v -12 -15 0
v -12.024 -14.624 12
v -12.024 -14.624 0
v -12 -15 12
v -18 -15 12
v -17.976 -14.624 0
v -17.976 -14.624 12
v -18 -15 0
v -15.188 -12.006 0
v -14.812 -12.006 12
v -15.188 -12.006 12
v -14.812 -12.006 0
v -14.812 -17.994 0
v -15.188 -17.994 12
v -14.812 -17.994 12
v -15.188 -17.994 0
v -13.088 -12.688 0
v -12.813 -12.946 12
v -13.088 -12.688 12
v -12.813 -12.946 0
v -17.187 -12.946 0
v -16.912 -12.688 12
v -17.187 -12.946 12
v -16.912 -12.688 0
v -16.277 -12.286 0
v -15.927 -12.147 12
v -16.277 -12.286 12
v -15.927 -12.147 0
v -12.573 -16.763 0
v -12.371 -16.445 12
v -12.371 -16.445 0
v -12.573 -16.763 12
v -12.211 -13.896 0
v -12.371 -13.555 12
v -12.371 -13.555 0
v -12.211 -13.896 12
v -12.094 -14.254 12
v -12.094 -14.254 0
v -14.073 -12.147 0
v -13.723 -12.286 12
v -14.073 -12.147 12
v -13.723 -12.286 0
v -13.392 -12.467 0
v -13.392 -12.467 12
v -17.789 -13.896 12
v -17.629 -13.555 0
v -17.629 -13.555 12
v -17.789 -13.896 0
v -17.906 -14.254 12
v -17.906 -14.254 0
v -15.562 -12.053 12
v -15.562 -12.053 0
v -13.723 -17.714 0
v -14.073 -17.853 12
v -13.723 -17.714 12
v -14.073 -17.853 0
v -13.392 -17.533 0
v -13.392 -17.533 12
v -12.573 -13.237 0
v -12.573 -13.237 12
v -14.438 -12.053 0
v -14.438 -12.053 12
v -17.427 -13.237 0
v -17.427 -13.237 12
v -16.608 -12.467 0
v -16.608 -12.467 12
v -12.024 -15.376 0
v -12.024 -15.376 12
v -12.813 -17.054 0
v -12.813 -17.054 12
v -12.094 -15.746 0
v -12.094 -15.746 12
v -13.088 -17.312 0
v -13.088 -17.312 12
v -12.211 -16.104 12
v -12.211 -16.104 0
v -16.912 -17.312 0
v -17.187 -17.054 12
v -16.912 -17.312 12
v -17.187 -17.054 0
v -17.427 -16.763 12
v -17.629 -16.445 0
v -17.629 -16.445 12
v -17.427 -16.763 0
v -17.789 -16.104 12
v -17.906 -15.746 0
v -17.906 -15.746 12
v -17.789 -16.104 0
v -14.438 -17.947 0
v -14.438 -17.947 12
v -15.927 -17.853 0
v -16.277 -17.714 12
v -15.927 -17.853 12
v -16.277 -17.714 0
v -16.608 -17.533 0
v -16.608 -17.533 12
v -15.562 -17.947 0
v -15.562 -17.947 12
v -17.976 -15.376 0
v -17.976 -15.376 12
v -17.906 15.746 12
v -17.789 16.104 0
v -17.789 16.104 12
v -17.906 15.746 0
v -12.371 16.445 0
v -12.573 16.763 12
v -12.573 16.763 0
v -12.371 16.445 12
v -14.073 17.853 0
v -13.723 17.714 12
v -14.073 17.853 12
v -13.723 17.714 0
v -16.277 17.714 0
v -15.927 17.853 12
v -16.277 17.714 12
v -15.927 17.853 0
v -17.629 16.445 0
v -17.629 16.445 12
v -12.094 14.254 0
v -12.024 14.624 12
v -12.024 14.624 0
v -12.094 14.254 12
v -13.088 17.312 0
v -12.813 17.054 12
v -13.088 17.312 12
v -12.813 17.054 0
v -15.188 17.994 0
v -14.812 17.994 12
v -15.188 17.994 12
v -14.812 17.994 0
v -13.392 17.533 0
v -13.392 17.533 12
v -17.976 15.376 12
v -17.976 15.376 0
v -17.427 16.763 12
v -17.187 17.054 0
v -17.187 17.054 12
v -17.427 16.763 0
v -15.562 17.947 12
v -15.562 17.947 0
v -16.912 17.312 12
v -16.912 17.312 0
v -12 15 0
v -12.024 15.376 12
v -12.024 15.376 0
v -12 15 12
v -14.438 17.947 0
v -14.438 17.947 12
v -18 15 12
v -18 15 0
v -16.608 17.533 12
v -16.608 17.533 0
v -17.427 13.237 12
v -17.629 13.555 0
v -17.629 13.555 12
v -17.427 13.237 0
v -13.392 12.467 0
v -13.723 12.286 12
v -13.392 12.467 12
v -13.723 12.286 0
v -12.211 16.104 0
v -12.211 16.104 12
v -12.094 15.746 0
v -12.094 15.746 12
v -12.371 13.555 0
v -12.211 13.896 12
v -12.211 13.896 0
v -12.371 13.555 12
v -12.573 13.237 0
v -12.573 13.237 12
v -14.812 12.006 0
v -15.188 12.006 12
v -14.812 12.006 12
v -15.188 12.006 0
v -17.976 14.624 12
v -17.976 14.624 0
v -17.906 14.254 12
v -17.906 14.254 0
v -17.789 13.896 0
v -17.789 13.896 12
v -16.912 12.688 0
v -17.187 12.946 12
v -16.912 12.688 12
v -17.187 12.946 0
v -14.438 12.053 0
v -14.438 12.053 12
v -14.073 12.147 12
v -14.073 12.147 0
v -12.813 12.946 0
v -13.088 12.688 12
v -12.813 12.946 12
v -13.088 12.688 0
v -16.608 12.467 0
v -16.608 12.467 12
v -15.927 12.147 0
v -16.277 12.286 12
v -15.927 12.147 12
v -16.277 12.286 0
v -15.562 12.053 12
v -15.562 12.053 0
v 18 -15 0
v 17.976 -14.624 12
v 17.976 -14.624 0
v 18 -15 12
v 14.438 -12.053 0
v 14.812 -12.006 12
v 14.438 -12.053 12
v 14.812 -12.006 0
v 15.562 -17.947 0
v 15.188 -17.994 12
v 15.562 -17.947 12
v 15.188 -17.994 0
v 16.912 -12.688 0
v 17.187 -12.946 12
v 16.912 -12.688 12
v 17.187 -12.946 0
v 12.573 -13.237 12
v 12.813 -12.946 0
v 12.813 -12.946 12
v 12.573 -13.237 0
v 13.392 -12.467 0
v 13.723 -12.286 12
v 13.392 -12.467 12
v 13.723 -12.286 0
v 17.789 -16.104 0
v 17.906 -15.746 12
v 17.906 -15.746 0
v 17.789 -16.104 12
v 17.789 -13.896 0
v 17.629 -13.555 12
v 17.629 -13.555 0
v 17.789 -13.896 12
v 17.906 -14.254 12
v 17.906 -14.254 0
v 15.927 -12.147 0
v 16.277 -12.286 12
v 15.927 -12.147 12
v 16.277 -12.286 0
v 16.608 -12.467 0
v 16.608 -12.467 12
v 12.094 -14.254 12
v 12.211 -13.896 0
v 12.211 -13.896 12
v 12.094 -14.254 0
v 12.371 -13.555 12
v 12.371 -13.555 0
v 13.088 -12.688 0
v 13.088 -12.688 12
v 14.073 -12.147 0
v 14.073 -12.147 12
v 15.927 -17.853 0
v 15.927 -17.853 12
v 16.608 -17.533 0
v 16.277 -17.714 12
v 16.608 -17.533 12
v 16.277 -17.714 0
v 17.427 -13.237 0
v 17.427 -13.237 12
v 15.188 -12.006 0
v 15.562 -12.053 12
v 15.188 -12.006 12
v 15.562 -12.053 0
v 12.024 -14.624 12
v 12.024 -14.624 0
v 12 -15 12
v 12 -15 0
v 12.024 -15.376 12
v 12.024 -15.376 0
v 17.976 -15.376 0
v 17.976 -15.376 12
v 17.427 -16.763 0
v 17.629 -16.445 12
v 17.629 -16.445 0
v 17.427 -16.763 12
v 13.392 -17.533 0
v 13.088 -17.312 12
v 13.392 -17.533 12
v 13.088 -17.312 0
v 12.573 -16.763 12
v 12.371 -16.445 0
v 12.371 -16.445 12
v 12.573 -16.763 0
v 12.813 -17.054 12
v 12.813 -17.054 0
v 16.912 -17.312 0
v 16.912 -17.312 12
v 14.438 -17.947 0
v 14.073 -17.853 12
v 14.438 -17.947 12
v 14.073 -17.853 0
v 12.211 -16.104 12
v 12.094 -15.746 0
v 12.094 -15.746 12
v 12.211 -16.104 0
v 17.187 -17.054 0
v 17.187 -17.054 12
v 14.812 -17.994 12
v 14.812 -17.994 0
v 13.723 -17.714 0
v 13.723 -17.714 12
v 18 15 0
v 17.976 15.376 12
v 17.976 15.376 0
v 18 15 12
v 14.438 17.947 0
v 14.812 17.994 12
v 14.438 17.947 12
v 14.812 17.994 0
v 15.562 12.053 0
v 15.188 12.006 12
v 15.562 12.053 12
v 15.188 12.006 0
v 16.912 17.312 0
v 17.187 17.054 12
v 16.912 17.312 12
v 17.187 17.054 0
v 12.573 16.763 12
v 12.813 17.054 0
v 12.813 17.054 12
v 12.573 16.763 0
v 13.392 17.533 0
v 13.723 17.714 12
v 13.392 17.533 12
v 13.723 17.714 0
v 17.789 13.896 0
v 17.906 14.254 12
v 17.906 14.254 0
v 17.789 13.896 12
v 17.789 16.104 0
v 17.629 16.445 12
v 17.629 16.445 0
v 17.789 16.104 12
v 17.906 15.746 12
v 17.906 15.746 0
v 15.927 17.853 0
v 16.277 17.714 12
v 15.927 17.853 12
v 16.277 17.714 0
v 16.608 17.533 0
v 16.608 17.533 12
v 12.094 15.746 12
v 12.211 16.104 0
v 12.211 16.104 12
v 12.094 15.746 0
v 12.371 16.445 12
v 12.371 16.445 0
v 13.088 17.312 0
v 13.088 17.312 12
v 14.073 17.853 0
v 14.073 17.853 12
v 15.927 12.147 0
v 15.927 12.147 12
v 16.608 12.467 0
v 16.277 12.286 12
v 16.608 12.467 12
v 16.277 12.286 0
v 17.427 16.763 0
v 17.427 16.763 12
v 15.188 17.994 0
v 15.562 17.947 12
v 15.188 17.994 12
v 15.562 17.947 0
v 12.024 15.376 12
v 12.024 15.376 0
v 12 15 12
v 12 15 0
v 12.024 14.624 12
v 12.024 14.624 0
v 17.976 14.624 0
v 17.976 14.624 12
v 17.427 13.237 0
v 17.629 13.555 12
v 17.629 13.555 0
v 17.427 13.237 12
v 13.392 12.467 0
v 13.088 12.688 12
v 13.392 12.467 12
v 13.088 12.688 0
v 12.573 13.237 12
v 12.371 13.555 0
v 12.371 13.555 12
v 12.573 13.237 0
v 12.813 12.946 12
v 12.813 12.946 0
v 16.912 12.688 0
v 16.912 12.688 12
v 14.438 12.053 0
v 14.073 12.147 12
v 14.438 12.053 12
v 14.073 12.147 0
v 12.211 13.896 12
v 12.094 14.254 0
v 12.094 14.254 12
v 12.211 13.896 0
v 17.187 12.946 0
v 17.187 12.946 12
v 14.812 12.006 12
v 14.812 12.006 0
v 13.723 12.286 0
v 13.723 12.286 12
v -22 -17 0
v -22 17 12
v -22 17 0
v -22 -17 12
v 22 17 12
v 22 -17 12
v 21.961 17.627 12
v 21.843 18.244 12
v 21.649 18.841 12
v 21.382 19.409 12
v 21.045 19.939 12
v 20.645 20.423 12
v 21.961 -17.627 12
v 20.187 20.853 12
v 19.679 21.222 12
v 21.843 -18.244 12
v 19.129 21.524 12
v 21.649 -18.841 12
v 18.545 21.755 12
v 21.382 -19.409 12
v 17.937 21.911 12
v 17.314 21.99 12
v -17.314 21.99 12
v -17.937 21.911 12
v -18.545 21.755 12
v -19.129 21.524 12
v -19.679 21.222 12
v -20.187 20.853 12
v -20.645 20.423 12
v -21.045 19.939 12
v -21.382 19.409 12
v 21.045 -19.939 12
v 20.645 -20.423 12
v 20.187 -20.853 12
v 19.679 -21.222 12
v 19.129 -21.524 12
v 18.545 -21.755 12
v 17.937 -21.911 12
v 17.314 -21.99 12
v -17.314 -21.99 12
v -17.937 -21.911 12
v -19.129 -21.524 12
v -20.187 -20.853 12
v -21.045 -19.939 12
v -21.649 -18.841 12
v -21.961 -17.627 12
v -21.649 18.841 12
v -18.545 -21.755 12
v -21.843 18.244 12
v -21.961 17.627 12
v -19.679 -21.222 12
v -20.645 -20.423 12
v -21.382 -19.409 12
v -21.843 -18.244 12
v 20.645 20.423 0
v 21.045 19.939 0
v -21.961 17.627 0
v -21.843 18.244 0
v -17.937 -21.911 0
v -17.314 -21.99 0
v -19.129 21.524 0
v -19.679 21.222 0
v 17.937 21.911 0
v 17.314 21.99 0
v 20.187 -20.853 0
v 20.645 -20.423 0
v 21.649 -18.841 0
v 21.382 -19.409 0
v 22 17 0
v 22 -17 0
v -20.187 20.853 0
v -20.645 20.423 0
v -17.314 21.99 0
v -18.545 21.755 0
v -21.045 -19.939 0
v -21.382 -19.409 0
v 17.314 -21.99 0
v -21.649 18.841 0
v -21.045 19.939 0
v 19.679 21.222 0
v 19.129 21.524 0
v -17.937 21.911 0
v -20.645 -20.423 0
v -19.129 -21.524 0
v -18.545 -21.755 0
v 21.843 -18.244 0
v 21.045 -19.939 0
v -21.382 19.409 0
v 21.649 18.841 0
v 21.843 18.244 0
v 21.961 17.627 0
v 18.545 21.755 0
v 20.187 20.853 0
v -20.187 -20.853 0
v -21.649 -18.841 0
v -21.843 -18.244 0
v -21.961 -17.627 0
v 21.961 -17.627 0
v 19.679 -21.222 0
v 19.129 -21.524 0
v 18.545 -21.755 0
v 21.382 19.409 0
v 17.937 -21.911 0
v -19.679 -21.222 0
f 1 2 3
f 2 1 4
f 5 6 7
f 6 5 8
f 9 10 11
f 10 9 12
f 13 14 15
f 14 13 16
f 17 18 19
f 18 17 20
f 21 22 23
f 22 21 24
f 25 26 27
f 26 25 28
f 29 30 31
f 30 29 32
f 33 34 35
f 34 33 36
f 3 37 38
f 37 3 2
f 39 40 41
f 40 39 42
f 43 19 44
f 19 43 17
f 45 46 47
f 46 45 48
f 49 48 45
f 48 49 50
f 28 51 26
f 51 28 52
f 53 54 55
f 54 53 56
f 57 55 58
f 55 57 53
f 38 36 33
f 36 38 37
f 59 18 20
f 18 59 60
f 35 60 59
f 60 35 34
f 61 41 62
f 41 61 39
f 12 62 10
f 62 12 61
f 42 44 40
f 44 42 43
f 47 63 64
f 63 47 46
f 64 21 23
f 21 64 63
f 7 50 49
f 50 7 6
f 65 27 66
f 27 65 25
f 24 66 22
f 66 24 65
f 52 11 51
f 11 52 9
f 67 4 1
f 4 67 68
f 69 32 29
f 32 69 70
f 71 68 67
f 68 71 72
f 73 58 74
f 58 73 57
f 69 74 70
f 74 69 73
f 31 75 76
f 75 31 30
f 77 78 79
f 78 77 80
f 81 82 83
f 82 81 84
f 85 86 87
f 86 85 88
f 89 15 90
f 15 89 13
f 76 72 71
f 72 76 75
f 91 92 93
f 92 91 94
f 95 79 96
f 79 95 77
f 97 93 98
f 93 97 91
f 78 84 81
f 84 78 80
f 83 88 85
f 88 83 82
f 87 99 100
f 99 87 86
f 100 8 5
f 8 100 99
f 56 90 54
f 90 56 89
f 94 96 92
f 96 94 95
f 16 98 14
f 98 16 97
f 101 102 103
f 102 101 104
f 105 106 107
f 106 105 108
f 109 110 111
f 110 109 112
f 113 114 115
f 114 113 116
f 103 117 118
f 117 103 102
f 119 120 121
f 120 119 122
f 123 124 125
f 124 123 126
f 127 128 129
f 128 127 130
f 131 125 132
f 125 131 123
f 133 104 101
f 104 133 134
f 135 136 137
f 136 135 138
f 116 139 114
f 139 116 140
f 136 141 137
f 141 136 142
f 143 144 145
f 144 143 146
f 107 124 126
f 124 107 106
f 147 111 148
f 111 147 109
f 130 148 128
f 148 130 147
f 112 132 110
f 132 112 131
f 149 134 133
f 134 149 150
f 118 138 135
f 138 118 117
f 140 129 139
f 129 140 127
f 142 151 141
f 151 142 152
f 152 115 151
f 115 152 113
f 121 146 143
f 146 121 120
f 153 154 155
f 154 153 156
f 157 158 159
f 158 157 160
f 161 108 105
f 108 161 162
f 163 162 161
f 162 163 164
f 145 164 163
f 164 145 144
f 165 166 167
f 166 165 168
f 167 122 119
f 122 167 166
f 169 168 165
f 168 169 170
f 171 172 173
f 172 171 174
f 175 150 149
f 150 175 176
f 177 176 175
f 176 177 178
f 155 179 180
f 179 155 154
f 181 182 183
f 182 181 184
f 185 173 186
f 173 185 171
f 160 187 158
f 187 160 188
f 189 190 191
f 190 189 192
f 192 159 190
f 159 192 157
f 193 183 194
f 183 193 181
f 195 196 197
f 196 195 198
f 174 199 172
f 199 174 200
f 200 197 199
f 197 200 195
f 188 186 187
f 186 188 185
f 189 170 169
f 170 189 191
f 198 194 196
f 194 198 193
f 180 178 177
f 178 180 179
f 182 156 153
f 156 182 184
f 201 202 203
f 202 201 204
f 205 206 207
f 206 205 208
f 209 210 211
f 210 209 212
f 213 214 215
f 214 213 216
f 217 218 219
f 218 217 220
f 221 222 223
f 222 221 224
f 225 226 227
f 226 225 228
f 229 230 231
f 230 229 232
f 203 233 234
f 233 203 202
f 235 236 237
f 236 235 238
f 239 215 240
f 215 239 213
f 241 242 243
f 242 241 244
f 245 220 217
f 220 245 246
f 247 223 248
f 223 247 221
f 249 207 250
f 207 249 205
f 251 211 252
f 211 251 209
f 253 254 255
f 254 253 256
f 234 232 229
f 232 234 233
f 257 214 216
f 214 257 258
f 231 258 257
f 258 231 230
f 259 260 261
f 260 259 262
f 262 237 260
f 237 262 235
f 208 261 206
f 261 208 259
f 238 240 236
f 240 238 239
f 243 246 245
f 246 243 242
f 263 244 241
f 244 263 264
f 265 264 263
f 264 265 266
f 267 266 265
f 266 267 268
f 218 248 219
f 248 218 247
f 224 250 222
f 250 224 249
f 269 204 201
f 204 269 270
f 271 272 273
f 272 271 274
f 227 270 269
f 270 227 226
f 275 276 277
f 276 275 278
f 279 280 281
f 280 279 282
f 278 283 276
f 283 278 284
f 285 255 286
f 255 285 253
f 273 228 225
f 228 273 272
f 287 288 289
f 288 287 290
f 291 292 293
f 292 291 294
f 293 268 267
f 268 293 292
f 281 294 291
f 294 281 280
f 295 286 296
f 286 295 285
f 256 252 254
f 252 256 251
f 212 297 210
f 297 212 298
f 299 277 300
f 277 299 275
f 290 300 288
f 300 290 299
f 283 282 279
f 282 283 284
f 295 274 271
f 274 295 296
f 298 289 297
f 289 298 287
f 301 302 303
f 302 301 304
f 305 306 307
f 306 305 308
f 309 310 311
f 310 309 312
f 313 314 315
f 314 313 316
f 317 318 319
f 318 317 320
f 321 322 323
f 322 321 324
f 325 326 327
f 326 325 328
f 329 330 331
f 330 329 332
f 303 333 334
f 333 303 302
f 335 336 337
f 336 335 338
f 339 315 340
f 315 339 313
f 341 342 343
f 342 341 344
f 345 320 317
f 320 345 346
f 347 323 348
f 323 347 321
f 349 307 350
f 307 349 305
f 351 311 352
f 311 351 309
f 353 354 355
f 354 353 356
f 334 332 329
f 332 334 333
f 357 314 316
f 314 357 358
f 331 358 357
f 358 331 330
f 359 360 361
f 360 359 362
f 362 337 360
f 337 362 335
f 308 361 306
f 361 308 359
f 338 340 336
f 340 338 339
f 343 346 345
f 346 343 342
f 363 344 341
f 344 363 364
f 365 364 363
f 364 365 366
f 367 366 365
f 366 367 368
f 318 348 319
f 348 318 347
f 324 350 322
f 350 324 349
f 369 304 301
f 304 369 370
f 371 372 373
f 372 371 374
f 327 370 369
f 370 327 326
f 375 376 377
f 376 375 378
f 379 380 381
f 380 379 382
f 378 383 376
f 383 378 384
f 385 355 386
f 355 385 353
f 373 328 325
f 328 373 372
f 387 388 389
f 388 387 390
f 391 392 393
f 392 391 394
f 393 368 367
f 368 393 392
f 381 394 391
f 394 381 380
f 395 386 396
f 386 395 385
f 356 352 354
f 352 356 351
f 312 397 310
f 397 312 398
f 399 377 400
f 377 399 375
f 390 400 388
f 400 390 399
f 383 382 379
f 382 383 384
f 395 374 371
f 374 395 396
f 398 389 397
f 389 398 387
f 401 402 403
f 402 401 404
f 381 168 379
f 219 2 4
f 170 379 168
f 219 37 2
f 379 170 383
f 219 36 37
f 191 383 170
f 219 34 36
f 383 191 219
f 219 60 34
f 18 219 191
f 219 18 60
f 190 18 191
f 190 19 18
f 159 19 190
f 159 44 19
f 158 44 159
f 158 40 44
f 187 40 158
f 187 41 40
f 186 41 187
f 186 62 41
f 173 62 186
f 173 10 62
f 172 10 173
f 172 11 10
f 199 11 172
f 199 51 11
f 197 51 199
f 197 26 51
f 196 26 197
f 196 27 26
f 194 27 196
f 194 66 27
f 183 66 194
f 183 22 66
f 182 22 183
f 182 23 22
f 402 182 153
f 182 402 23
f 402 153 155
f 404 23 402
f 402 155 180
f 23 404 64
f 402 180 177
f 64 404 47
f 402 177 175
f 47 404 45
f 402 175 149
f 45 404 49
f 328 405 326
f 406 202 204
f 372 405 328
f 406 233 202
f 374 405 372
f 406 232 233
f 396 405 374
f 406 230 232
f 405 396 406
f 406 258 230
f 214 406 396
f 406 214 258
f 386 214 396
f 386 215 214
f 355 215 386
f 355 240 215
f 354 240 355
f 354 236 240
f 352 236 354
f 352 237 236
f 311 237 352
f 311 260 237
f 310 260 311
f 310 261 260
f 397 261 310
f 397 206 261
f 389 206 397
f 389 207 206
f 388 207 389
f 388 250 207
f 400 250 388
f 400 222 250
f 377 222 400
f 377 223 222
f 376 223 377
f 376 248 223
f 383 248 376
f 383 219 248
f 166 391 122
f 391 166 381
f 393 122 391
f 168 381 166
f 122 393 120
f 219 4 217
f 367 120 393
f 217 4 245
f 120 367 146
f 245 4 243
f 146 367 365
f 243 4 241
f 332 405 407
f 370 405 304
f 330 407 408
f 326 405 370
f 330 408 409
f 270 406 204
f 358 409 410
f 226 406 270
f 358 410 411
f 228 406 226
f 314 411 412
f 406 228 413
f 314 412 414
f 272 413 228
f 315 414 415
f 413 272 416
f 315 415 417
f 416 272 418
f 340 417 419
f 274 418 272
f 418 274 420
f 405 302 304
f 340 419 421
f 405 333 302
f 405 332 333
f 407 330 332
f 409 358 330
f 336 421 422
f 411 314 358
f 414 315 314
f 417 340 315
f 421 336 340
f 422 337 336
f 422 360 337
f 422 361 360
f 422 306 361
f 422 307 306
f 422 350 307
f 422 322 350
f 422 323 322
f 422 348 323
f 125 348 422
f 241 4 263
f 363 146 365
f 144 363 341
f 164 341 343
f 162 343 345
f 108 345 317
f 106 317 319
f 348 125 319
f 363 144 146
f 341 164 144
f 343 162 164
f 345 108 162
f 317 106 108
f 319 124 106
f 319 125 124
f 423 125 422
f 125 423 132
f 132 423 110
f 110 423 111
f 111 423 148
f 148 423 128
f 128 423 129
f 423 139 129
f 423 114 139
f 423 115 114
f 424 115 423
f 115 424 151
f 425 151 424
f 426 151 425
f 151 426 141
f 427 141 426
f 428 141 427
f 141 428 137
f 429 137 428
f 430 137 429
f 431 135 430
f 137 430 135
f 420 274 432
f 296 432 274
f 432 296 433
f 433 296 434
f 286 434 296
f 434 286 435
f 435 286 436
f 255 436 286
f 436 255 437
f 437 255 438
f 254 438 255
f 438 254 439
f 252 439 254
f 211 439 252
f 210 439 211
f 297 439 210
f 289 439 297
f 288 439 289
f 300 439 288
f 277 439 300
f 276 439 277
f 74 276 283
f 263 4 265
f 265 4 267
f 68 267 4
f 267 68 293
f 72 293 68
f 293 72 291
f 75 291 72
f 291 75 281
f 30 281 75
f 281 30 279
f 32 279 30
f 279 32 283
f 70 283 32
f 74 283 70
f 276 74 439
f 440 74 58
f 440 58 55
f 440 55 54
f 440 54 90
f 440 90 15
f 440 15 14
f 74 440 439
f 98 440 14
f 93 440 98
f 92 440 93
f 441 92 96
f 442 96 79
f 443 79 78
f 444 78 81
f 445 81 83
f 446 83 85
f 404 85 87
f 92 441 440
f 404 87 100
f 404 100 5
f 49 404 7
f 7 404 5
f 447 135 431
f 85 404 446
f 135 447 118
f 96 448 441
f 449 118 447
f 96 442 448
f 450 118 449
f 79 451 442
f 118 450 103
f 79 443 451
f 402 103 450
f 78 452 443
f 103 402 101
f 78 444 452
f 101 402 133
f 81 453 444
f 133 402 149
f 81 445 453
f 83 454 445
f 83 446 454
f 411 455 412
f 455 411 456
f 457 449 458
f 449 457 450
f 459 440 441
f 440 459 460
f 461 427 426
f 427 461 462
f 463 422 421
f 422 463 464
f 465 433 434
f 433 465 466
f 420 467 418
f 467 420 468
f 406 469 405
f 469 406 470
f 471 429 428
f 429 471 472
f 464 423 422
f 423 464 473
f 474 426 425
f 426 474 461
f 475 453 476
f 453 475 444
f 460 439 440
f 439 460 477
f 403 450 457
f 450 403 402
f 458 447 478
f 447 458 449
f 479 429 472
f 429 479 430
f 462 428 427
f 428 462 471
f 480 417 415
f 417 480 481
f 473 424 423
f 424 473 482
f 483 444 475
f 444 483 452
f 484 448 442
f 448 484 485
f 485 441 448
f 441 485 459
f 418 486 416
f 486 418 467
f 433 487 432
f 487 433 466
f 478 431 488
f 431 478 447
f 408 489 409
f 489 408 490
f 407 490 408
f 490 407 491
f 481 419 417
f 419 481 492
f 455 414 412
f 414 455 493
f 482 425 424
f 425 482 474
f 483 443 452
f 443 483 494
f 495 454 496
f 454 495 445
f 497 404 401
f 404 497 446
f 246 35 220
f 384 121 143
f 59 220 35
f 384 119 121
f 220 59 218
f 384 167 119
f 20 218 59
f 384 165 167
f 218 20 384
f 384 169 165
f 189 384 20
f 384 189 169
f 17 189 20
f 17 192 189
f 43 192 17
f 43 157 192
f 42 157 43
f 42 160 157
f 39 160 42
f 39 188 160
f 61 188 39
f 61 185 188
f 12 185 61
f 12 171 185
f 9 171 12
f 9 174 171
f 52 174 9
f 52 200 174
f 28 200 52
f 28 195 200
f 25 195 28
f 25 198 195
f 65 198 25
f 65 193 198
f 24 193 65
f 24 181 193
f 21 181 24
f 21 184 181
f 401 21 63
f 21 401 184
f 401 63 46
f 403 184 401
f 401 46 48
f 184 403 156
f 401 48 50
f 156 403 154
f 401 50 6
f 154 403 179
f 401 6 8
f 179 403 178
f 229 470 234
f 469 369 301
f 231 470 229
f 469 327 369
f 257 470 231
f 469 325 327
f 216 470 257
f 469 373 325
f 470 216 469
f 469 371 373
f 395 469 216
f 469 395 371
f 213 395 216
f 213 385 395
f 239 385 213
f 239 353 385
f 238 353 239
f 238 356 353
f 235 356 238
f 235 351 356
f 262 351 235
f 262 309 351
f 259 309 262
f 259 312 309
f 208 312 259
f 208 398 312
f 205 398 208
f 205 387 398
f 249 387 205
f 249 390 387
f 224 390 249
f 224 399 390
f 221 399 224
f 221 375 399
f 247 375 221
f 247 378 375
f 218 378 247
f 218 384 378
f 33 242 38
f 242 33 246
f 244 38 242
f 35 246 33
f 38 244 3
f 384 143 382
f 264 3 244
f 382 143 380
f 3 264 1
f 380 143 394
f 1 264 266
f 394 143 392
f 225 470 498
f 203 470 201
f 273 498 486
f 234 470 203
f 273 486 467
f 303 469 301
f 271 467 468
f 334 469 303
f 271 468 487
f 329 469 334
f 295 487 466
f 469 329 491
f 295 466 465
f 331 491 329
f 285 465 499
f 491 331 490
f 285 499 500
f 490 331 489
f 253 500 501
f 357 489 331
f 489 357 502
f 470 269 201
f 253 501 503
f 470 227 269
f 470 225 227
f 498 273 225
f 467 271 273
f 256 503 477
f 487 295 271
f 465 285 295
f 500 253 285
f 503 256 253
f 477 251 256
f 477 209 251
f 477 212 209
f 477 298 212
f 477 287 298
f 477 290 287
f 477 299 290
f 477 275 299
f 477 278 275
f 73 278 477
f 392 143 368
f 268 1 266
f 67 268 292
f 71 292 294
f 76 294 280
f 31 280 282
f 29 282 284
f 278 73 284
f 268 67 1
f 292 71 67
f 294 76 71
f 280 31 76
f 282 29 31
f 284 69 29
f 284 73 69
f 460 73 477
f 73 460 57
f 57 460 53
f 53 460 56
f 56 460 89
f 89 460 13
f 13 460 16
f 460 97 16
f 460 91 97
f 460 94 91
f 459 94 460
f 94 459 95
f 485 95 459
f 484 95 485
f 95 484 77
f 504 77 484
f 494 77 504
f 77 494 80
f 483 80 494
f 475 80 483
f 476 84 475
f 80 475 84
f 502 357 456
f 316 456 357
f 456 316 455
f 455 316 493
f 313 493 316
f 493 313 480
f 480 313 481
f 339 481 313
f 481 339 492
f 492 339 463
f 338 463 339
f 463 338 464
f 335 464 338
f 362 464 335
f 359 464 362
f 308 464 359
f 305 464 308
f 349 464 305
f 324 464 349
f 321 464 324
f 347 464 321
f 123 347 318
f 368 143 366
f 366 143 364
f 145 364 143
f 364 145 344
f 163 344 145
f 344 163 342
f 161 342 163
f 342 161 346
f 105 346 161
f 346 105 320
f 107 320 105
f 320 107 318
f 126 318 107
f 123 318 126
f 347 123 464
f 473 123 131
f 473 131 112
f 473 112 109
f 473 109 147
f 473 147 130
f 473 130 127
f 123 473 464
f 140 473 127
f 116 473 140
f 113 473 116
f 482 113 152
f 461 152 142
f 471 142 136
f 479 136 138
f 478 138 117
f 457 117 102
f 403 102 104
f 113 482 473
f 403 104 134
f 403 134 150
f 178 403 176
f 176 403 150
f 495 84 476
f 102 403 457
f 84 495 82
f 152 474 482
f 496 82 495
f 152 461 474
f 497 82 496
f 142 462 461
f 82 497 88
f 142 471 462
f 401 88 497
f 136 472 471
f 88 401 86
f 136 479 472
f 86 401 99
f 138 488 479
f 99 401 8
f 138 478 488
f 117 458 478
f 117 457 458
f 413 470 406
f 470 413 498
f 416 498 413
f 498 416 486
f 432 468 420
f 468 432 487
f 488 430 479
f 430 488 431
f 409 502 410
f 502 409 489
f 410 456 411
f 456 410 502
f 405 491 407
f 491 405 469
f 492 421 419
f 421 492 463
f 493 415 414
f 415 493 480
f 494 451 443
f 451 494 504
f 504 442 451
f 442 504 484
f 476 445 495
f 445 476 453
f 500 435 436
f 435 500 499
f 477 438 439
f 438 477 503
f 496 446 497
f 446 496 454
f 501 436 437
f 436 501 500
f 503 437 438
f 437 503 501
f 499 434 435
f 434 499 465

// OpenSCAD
$fn = 50;


difference() {
	union() {
		hull() {
			translate(v = [-17.0000000000, 17.0000000000, 0]) {
				cylinder(h = 12, r = 5);
			}
			translate(v = [17.0000000000, 17.0000000000, 0]) {
				cylinder(h = 12, r = 5);
			}
			translate(v = [-17.0000000000, -17.0000000000, 0]) {
				cylinder(h = 12, r = 5);
			}
			translate(v = [17.0000000000, -17.0000000000, 0]) {
				cylinder(h = 12, r = 5);
			}
		}
	}
	union() {
		translate(v = [-15.0000000000, -15.0000000000, -100.0000000000]) {
			cylinder(h = 200, r = 3.0000000000);
		}
		translate(v = [-15.0000000000, 15.0000000000, -100.0000000000]) {
			cylinder(h = 200, r = 3.0000000000);
		}
		translate(v = [15.0000000000, -15.0000000000, -100.0000000000]) {
			cylinder(h = 200, r = 3.0000000000);
		}
		translate(v = [15.0000000000, 15.0000000000, -100.0000000000]) {
			cylinder(h = 200, r = 3.0000000000);
		}
	}
}
